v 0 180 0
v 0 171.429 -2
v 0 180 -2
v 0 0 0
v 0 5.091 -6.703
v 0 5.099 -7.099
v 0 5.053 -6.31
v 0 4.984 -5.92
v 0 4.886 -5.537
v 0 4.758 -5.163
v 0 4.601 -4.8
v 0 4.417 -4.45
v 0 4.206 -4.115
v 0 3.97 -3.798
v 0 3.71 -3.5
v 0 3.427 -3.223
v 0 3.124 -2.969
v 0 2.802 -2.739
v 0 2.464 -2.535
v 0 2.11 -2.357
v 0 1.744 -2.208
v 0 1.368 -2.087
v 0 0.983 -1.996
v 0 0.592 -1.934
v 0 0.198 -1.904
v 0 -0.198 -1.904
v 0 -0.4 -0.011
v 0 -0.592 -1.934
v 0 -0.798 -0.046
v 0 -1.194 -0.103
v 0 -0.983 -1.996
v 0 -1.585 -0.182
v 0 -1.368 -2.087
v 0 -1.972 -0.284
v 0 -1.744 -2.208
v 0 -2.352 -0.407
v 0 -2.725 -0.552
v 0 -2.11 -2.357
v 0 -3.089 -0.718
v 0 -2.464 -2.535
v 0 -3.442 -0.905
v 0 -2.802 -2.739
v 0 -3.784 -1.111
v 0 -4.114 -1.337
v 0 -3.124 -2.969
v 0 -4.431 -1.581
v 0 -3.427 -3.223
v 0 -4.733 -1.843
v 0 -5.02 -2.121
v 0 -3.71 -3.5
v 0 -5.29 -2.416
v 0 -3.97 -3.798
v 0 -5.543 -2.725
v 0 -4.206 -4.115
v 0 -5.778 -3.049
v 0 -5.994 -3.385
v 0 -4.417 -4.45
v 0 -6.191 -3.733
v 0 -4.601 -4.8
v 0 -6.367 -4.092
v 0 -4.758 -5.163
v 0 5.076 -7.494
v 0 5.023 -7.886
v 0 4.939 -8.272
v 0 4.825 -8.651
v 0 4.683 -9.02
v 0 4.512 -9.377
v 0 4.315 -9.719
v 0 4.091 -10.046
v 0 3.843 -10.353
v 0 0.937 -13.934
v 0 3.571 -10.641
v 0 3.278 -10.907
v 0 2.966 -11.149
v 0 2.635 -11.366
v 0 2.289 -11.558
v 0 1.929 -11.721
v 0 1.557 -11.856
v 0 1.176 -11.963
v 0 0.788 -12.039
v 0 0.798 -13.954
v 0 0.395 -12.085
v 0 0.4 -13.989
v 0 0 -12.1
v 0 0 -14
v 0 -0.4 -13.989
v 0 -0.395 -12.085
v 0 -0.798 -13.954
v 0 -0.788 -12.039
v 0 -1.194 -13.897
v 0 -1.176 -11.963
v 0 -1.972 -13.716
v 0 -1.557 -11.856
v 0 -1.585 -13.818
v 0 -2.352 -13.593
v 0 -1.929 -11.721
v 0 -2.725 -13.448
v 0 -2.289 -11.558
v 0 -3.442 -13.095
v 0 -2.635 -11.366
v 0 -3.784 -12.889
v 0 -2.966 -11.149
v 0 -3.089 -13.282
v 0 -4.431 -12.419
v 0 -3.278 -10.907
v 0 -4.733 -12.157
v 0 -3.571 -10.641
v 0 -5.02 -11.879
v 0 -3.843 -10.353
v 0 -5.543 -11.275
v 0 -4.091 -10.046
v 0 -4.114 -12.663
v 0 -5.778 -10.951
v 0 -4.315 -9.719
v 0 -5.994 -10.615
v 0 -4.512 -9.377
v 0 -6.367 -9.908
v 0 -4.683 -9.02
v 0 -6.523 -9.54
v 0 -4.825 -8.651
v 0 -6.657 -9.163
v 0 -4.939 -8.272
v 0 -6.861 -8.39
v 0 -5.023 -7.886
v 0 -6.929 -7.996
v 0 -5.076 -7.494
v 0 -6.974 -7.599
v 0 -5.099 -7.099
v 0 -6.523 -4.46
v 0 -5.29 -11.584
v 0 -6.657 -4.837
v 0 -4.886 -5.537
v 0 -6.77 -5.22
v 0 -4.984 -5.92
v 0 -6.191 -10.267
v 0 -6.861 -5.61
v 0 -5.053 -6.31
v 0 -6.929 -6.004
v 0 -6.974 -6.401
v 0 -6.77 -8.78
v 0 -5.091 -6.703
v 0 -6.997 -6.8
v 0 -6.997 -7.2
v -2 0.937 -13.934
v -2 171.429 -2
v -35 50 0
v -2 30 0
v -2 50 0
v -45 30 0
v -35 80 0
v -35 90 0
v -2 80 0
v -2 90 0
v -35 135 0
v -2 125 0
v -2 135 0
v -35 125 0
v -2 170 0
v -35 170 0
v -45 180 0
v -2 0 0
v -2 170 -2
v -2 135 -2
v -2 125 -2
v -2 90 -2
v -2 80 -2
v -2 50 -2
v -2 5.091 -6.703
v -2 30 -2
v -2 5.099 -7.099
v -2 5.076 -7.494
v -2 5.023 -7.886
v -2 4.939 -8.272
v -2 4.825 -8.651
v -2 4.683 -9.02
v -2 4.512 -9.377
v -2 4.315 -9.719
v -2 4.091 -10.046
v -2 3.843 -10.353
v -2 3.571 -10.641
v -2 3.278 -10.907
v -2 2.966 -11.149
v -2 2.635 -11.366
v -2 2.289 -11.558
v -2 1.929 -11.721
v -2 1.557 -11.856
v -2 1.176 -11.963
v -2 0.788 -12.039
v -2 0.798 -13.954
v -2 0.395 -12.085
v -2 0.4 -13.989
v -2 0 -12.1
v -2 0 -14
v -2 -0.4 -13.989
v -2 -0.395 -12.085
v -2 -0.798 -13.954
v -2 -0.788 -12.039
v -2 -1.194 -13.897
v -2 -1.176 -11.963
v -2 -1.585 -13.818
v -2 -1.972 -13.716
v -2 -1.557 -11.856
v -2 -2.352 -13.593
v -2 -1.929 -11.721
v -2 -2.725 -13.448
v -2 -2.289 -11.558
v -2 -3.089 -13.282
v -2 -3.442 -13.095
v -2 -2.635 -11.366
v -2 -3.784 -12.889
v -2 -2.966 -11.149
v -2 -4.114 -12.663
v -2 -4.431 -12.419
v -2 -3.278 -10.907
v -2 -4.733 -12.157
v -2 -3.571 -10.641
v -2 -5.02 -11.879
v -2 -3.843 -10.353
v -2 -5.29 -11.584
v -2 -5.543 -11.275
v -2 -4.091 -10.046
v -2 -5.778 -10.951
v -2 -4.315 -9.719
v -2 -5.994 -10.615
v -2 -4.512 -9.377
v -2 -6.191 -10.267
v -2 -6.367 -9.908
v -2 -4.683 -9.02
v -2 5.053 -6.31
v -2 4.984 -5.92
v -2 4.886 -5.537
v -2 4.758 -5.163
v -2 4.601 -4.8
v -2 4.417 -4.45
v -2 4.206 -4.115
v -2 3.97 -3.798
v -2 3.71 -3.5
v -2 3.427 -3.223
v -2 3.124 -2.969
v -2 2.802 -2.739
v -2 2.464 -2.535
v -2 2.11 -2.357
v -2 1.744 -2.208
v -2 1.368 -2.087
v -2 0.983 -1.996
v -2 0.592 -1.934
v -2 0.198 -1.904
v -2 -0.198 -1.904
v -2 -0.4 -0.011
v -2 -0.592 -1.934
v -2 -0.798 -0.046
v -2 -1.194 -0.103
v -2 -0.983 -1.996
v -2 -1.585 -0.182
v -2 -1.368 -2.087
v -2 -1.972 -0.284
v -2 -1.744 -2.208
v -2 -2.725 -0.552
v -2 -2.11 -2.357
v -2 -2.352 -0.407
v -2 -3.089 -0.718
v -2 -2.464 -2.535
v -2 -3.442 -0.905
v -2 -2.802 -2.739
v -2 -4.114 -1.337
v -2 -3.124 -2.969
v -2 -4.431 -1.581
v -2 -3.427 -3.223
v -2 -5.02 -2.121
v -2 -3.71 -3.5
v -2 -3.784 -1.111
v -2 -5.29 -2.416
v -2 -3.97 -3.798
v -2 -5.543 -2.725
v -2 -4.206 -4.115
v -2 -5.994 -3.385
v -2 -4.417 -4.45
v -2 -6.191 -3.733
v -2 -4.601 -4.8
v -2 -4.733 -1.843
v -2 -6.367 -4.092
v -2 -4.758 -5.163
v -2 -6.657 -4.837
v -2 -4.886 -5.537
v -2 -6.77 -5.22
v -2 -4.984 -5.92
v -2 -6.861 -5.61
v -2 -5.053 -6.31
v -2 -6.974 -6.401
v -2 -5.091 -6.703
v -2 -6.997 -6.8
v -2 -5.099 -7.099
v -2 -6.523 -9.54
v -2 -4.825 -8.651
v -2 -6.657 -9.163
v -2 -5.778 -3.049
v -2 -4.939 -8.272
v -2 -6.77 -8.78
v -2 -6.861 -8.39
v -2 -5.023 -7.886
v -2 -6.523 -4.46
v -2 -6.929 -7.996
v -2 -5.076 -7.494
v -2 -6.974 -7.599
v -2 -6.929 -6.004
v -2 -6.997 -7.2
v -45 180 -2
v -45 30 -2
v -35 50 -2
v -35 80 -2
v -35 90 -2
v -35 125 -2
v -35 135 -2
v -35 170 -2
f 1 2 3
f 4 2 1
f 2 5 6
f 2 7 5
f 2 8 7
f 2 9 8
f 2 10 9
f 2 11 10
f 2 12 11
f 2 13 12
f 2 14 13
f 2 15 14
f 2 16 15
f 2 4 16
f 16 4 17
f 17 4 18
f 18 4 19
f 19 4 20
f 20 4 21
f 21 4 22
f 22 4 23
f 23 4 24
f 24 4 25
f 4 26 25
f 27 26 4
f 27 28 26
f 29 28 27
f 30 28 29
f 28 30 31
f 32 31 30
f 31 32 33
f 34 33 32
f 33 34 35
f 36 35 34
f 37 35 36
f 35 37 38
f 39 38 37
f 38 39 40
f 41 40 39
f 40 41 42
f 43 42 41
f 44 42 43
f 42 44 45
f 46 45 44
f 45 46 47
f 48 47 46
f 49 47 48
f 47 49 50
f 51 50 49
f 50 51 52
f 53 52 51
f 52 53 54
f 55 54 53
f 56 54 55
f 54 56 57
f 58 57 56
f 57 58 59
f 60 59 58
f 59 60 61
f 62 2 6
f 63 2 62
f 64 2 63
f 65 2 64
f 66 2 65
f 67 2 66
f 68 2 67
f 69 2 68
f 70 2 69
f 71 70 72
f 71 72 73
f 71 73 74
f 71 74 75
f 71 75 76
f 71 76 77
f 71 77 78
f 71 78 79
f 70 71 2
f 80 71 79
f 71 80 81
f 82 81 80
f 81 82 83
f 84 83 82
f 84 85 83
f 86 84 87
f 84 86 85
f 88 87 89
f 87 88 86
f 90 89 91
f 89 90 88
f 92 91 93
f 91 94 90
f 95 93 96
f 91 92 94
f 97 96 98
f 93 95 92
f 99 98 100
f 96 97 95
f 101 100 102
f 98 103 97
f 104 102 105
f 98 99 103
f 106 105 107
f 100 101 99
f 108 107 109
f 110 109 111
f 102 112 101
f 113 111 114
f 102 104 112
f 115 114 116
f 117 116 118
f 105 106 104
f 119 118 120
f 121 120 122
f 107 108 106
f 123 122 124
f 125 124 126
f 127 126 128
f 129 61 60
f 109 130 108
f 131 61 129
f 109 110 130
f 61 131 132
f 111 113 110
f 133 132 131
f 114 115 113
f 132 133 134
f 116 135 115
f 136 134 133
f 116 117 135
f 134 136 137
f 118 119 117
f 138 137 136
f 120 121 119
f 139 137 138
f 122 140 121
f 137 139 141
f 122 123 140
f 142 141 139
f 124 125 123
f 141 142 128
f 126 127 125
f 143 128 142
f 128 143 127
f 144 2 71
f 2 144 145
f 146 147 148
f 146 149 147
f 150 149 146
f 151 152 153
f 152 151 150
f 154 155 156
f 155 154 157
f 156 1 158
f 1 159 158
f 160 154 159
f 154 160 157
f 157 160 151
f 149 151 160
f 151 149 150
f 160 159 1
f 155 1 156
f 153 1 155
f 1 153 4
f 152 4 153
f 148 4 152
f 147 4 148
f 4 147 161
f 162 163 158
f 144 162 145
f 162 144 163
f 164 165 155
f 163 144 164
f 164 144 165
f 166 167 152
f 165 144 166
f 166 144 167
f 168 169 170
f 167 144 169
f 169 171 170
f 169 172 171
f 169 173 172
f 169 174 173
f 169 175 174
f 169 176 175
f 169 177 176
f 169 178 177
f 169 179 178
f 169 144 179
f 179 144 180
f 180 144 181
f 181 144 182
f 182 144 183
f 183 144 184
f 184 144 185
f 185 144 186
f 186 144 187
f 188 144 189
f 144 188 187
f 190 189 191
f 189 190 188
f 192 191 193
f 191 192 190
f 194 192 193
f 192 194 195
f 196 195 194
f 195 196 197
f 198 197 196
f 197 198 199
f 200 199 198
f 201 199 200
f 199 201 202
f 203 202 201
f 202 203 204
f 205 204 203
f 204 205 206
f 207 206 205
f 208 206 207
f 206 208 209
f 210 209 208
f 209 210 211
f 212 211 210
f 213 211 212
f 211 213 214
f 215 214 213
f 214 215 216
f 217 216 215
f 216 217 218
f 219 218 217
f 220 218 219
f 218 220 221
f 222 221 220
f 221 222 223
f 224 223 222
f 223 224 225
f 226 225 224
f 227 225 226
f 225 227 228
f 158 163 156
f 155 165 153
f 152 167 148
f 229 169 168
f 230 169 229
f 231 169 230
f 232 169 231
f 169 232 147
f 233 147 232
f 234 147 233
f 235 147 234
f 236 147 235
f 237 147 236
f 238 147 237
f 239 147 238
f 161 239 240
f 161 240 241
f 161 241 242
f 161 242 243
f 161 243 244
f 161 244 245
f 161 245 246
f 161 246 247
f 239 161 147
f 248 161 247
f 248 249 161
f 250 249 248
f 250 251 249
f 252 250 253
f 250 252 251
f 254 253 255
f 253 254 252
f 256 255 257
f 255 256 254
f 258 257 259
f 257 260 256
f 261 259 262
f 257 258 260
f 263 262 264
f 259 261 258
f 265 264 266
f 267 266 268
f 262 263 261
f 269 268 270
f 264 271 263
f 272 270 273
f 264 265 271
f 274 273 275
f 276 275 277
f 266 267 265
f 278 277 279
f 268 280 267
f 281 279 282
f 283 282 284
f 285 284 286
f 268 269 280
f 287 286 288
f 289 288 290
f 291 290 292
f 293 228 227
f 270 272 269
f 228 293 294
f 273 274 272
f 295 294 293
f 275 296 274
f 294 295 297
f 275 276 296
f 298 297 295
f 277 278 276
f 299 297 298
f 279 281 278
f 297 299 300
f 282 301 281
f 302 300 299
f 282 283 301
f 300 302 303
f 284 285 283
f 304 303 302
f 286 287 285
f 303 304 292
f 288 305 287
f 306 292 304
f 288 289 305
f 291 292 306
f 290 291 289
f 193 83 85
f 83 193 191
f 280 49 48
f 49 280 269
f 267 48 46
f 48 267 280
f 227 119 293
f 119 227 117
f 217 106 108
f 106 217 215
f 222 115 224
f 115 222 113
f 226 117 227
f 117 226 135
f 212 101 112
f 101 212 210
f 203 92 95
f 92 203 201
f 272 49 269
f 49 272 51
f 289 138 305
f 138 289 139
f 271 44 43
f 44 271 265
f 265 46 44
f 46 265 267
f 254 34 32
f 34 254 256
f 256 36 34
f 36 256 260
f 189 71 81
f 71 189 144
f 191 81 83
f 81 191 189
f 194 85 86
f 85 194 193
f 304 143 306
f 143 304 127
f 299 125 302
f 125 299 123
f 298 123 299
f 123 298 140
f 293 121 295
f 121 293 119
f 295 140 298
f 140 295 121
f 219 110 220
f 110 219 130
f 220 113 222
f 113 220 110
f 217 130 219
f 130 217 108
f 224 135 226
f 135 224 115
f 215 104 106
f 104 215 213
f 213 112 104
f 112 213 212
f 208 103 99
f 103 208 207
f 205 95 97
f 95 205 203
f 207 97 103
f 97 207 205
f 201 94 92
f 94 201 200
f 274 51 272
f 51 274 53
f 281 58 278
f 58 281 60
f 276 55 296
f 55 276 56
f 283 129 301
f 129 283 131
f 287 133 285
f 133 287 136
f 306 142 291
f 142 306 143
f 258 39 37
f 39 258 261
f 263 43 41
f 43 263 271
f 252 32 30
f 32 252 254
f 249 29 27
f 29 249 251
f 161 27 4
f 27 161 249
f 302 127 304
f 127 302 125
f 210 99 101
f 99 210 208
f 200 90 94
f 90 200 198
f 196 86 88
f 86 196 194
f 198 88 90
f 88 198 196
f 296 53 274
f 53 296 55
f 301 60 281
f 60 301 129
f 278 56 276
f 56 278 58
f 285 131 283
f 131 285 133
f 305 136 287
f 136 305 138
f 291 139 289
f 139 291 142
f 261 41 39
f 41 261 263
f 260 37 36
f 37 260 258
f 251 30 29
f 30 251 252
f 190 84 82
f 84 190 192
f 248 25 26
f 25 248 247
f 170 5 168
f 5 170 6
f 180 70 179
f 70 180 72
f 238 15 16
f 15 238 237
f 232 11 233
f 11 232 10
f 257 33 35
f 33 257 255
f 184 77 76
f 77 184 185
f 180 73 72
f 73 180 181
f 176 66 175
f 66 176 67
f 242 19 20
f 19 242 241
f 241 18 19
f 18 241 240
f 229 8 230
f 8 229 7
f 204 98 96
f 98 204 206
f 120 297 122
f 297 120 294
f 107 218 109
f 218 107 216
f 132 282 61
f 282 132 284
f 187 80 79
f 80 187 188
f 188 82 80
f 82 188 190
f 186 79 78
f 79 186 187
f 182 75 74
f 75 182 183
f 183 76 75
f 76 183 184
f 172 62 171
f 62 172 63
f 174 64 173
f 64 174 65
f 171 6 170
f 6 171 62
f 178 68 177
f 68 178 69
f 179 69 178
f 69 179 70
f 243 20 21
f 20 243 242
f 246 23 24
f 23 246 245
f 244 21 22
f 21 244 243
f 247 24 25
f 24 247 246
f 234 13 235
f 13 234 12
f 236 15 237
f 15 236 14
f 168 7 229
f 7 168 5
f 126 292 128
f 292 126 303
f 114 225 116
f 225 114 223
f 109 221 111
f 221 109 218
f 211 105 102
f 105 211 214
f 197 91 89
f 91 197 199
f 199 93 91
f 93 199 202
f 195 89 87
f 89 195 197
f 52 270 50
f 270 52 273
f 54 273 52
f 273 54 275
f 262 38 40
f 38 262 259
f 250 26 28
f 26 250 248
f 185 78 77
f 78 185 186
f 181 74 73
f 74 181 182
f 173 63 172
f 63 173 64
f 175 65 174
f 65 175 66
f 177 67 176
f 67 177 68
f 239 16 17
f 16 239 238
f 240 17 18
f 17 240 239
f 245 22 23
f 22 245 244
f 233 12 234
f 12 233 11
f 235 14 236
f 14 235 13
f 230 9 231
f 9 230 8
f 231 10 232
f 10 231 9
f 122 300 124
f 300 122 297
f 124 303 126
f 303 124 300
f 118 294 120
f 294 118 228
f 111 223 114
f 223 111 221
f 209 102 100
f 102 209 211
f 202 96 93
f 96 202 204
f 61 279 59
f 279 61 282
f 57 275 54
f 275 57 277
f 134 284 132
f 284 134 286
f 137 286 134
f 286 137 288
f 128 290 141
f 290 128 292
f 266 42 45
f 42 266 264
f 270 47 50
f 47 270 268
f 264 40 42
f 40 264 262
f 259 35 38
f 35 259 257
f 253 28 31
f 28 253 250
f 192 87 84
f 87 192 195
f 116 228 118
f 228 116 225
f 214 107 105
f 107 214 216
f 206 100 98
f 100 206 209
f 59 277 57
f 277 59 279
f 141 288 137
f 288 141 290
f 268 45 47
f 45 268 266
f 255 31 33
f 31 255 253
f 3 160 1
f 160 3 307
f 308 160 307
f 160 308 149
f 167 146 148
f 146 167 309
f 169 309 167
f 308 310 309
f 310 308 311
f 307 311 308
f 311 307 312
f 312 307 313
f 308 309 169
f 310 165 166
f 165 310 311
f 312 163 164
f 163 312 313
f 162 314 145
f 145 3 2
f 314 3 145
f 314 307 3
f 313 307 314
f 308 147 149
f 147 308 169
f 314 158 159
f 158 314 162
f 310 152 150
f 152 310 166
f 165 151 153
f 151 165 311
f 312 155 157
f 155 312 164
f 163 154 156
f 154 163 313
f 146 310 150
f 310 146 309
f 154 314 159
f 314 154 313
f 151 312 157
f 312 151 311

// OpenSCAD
$fa = 1;
$fs = 0.4;

a=[[0,0],[0,10],[10,0]];

module wing(){
    rotate([0,90,0])
        difference(){
            union(){
                resize([14, 200, 2])
                    linear_extrude(2)
                        polygon(a);

                translate([7, 0, 0])        
                    cylinder(2, 7, 7);        
            }
            
            translate([7, 0, -1])        
                cylinder(4, 5.1, 5.1); 
     
            translate([-1, 180, -2])
                cube([10, 40, 10]);
            
        }

    translate([0, 30, -2])    
        cube([45, 20, 2]);    
        
    translate([0, 170, -2])    
        cube([45, 10, 2]);        
        
    translate([0, 80, -2])    
        cube([45, 10, 2]);        
        
    translate([0, 125, -2])    
        cube([45, 10, 2]);        
        
    translate([35, 30, -2])    
        cube([10, 150, 2]);            
    
}

//wing();
mirror([1, 0, 0]) wing();
